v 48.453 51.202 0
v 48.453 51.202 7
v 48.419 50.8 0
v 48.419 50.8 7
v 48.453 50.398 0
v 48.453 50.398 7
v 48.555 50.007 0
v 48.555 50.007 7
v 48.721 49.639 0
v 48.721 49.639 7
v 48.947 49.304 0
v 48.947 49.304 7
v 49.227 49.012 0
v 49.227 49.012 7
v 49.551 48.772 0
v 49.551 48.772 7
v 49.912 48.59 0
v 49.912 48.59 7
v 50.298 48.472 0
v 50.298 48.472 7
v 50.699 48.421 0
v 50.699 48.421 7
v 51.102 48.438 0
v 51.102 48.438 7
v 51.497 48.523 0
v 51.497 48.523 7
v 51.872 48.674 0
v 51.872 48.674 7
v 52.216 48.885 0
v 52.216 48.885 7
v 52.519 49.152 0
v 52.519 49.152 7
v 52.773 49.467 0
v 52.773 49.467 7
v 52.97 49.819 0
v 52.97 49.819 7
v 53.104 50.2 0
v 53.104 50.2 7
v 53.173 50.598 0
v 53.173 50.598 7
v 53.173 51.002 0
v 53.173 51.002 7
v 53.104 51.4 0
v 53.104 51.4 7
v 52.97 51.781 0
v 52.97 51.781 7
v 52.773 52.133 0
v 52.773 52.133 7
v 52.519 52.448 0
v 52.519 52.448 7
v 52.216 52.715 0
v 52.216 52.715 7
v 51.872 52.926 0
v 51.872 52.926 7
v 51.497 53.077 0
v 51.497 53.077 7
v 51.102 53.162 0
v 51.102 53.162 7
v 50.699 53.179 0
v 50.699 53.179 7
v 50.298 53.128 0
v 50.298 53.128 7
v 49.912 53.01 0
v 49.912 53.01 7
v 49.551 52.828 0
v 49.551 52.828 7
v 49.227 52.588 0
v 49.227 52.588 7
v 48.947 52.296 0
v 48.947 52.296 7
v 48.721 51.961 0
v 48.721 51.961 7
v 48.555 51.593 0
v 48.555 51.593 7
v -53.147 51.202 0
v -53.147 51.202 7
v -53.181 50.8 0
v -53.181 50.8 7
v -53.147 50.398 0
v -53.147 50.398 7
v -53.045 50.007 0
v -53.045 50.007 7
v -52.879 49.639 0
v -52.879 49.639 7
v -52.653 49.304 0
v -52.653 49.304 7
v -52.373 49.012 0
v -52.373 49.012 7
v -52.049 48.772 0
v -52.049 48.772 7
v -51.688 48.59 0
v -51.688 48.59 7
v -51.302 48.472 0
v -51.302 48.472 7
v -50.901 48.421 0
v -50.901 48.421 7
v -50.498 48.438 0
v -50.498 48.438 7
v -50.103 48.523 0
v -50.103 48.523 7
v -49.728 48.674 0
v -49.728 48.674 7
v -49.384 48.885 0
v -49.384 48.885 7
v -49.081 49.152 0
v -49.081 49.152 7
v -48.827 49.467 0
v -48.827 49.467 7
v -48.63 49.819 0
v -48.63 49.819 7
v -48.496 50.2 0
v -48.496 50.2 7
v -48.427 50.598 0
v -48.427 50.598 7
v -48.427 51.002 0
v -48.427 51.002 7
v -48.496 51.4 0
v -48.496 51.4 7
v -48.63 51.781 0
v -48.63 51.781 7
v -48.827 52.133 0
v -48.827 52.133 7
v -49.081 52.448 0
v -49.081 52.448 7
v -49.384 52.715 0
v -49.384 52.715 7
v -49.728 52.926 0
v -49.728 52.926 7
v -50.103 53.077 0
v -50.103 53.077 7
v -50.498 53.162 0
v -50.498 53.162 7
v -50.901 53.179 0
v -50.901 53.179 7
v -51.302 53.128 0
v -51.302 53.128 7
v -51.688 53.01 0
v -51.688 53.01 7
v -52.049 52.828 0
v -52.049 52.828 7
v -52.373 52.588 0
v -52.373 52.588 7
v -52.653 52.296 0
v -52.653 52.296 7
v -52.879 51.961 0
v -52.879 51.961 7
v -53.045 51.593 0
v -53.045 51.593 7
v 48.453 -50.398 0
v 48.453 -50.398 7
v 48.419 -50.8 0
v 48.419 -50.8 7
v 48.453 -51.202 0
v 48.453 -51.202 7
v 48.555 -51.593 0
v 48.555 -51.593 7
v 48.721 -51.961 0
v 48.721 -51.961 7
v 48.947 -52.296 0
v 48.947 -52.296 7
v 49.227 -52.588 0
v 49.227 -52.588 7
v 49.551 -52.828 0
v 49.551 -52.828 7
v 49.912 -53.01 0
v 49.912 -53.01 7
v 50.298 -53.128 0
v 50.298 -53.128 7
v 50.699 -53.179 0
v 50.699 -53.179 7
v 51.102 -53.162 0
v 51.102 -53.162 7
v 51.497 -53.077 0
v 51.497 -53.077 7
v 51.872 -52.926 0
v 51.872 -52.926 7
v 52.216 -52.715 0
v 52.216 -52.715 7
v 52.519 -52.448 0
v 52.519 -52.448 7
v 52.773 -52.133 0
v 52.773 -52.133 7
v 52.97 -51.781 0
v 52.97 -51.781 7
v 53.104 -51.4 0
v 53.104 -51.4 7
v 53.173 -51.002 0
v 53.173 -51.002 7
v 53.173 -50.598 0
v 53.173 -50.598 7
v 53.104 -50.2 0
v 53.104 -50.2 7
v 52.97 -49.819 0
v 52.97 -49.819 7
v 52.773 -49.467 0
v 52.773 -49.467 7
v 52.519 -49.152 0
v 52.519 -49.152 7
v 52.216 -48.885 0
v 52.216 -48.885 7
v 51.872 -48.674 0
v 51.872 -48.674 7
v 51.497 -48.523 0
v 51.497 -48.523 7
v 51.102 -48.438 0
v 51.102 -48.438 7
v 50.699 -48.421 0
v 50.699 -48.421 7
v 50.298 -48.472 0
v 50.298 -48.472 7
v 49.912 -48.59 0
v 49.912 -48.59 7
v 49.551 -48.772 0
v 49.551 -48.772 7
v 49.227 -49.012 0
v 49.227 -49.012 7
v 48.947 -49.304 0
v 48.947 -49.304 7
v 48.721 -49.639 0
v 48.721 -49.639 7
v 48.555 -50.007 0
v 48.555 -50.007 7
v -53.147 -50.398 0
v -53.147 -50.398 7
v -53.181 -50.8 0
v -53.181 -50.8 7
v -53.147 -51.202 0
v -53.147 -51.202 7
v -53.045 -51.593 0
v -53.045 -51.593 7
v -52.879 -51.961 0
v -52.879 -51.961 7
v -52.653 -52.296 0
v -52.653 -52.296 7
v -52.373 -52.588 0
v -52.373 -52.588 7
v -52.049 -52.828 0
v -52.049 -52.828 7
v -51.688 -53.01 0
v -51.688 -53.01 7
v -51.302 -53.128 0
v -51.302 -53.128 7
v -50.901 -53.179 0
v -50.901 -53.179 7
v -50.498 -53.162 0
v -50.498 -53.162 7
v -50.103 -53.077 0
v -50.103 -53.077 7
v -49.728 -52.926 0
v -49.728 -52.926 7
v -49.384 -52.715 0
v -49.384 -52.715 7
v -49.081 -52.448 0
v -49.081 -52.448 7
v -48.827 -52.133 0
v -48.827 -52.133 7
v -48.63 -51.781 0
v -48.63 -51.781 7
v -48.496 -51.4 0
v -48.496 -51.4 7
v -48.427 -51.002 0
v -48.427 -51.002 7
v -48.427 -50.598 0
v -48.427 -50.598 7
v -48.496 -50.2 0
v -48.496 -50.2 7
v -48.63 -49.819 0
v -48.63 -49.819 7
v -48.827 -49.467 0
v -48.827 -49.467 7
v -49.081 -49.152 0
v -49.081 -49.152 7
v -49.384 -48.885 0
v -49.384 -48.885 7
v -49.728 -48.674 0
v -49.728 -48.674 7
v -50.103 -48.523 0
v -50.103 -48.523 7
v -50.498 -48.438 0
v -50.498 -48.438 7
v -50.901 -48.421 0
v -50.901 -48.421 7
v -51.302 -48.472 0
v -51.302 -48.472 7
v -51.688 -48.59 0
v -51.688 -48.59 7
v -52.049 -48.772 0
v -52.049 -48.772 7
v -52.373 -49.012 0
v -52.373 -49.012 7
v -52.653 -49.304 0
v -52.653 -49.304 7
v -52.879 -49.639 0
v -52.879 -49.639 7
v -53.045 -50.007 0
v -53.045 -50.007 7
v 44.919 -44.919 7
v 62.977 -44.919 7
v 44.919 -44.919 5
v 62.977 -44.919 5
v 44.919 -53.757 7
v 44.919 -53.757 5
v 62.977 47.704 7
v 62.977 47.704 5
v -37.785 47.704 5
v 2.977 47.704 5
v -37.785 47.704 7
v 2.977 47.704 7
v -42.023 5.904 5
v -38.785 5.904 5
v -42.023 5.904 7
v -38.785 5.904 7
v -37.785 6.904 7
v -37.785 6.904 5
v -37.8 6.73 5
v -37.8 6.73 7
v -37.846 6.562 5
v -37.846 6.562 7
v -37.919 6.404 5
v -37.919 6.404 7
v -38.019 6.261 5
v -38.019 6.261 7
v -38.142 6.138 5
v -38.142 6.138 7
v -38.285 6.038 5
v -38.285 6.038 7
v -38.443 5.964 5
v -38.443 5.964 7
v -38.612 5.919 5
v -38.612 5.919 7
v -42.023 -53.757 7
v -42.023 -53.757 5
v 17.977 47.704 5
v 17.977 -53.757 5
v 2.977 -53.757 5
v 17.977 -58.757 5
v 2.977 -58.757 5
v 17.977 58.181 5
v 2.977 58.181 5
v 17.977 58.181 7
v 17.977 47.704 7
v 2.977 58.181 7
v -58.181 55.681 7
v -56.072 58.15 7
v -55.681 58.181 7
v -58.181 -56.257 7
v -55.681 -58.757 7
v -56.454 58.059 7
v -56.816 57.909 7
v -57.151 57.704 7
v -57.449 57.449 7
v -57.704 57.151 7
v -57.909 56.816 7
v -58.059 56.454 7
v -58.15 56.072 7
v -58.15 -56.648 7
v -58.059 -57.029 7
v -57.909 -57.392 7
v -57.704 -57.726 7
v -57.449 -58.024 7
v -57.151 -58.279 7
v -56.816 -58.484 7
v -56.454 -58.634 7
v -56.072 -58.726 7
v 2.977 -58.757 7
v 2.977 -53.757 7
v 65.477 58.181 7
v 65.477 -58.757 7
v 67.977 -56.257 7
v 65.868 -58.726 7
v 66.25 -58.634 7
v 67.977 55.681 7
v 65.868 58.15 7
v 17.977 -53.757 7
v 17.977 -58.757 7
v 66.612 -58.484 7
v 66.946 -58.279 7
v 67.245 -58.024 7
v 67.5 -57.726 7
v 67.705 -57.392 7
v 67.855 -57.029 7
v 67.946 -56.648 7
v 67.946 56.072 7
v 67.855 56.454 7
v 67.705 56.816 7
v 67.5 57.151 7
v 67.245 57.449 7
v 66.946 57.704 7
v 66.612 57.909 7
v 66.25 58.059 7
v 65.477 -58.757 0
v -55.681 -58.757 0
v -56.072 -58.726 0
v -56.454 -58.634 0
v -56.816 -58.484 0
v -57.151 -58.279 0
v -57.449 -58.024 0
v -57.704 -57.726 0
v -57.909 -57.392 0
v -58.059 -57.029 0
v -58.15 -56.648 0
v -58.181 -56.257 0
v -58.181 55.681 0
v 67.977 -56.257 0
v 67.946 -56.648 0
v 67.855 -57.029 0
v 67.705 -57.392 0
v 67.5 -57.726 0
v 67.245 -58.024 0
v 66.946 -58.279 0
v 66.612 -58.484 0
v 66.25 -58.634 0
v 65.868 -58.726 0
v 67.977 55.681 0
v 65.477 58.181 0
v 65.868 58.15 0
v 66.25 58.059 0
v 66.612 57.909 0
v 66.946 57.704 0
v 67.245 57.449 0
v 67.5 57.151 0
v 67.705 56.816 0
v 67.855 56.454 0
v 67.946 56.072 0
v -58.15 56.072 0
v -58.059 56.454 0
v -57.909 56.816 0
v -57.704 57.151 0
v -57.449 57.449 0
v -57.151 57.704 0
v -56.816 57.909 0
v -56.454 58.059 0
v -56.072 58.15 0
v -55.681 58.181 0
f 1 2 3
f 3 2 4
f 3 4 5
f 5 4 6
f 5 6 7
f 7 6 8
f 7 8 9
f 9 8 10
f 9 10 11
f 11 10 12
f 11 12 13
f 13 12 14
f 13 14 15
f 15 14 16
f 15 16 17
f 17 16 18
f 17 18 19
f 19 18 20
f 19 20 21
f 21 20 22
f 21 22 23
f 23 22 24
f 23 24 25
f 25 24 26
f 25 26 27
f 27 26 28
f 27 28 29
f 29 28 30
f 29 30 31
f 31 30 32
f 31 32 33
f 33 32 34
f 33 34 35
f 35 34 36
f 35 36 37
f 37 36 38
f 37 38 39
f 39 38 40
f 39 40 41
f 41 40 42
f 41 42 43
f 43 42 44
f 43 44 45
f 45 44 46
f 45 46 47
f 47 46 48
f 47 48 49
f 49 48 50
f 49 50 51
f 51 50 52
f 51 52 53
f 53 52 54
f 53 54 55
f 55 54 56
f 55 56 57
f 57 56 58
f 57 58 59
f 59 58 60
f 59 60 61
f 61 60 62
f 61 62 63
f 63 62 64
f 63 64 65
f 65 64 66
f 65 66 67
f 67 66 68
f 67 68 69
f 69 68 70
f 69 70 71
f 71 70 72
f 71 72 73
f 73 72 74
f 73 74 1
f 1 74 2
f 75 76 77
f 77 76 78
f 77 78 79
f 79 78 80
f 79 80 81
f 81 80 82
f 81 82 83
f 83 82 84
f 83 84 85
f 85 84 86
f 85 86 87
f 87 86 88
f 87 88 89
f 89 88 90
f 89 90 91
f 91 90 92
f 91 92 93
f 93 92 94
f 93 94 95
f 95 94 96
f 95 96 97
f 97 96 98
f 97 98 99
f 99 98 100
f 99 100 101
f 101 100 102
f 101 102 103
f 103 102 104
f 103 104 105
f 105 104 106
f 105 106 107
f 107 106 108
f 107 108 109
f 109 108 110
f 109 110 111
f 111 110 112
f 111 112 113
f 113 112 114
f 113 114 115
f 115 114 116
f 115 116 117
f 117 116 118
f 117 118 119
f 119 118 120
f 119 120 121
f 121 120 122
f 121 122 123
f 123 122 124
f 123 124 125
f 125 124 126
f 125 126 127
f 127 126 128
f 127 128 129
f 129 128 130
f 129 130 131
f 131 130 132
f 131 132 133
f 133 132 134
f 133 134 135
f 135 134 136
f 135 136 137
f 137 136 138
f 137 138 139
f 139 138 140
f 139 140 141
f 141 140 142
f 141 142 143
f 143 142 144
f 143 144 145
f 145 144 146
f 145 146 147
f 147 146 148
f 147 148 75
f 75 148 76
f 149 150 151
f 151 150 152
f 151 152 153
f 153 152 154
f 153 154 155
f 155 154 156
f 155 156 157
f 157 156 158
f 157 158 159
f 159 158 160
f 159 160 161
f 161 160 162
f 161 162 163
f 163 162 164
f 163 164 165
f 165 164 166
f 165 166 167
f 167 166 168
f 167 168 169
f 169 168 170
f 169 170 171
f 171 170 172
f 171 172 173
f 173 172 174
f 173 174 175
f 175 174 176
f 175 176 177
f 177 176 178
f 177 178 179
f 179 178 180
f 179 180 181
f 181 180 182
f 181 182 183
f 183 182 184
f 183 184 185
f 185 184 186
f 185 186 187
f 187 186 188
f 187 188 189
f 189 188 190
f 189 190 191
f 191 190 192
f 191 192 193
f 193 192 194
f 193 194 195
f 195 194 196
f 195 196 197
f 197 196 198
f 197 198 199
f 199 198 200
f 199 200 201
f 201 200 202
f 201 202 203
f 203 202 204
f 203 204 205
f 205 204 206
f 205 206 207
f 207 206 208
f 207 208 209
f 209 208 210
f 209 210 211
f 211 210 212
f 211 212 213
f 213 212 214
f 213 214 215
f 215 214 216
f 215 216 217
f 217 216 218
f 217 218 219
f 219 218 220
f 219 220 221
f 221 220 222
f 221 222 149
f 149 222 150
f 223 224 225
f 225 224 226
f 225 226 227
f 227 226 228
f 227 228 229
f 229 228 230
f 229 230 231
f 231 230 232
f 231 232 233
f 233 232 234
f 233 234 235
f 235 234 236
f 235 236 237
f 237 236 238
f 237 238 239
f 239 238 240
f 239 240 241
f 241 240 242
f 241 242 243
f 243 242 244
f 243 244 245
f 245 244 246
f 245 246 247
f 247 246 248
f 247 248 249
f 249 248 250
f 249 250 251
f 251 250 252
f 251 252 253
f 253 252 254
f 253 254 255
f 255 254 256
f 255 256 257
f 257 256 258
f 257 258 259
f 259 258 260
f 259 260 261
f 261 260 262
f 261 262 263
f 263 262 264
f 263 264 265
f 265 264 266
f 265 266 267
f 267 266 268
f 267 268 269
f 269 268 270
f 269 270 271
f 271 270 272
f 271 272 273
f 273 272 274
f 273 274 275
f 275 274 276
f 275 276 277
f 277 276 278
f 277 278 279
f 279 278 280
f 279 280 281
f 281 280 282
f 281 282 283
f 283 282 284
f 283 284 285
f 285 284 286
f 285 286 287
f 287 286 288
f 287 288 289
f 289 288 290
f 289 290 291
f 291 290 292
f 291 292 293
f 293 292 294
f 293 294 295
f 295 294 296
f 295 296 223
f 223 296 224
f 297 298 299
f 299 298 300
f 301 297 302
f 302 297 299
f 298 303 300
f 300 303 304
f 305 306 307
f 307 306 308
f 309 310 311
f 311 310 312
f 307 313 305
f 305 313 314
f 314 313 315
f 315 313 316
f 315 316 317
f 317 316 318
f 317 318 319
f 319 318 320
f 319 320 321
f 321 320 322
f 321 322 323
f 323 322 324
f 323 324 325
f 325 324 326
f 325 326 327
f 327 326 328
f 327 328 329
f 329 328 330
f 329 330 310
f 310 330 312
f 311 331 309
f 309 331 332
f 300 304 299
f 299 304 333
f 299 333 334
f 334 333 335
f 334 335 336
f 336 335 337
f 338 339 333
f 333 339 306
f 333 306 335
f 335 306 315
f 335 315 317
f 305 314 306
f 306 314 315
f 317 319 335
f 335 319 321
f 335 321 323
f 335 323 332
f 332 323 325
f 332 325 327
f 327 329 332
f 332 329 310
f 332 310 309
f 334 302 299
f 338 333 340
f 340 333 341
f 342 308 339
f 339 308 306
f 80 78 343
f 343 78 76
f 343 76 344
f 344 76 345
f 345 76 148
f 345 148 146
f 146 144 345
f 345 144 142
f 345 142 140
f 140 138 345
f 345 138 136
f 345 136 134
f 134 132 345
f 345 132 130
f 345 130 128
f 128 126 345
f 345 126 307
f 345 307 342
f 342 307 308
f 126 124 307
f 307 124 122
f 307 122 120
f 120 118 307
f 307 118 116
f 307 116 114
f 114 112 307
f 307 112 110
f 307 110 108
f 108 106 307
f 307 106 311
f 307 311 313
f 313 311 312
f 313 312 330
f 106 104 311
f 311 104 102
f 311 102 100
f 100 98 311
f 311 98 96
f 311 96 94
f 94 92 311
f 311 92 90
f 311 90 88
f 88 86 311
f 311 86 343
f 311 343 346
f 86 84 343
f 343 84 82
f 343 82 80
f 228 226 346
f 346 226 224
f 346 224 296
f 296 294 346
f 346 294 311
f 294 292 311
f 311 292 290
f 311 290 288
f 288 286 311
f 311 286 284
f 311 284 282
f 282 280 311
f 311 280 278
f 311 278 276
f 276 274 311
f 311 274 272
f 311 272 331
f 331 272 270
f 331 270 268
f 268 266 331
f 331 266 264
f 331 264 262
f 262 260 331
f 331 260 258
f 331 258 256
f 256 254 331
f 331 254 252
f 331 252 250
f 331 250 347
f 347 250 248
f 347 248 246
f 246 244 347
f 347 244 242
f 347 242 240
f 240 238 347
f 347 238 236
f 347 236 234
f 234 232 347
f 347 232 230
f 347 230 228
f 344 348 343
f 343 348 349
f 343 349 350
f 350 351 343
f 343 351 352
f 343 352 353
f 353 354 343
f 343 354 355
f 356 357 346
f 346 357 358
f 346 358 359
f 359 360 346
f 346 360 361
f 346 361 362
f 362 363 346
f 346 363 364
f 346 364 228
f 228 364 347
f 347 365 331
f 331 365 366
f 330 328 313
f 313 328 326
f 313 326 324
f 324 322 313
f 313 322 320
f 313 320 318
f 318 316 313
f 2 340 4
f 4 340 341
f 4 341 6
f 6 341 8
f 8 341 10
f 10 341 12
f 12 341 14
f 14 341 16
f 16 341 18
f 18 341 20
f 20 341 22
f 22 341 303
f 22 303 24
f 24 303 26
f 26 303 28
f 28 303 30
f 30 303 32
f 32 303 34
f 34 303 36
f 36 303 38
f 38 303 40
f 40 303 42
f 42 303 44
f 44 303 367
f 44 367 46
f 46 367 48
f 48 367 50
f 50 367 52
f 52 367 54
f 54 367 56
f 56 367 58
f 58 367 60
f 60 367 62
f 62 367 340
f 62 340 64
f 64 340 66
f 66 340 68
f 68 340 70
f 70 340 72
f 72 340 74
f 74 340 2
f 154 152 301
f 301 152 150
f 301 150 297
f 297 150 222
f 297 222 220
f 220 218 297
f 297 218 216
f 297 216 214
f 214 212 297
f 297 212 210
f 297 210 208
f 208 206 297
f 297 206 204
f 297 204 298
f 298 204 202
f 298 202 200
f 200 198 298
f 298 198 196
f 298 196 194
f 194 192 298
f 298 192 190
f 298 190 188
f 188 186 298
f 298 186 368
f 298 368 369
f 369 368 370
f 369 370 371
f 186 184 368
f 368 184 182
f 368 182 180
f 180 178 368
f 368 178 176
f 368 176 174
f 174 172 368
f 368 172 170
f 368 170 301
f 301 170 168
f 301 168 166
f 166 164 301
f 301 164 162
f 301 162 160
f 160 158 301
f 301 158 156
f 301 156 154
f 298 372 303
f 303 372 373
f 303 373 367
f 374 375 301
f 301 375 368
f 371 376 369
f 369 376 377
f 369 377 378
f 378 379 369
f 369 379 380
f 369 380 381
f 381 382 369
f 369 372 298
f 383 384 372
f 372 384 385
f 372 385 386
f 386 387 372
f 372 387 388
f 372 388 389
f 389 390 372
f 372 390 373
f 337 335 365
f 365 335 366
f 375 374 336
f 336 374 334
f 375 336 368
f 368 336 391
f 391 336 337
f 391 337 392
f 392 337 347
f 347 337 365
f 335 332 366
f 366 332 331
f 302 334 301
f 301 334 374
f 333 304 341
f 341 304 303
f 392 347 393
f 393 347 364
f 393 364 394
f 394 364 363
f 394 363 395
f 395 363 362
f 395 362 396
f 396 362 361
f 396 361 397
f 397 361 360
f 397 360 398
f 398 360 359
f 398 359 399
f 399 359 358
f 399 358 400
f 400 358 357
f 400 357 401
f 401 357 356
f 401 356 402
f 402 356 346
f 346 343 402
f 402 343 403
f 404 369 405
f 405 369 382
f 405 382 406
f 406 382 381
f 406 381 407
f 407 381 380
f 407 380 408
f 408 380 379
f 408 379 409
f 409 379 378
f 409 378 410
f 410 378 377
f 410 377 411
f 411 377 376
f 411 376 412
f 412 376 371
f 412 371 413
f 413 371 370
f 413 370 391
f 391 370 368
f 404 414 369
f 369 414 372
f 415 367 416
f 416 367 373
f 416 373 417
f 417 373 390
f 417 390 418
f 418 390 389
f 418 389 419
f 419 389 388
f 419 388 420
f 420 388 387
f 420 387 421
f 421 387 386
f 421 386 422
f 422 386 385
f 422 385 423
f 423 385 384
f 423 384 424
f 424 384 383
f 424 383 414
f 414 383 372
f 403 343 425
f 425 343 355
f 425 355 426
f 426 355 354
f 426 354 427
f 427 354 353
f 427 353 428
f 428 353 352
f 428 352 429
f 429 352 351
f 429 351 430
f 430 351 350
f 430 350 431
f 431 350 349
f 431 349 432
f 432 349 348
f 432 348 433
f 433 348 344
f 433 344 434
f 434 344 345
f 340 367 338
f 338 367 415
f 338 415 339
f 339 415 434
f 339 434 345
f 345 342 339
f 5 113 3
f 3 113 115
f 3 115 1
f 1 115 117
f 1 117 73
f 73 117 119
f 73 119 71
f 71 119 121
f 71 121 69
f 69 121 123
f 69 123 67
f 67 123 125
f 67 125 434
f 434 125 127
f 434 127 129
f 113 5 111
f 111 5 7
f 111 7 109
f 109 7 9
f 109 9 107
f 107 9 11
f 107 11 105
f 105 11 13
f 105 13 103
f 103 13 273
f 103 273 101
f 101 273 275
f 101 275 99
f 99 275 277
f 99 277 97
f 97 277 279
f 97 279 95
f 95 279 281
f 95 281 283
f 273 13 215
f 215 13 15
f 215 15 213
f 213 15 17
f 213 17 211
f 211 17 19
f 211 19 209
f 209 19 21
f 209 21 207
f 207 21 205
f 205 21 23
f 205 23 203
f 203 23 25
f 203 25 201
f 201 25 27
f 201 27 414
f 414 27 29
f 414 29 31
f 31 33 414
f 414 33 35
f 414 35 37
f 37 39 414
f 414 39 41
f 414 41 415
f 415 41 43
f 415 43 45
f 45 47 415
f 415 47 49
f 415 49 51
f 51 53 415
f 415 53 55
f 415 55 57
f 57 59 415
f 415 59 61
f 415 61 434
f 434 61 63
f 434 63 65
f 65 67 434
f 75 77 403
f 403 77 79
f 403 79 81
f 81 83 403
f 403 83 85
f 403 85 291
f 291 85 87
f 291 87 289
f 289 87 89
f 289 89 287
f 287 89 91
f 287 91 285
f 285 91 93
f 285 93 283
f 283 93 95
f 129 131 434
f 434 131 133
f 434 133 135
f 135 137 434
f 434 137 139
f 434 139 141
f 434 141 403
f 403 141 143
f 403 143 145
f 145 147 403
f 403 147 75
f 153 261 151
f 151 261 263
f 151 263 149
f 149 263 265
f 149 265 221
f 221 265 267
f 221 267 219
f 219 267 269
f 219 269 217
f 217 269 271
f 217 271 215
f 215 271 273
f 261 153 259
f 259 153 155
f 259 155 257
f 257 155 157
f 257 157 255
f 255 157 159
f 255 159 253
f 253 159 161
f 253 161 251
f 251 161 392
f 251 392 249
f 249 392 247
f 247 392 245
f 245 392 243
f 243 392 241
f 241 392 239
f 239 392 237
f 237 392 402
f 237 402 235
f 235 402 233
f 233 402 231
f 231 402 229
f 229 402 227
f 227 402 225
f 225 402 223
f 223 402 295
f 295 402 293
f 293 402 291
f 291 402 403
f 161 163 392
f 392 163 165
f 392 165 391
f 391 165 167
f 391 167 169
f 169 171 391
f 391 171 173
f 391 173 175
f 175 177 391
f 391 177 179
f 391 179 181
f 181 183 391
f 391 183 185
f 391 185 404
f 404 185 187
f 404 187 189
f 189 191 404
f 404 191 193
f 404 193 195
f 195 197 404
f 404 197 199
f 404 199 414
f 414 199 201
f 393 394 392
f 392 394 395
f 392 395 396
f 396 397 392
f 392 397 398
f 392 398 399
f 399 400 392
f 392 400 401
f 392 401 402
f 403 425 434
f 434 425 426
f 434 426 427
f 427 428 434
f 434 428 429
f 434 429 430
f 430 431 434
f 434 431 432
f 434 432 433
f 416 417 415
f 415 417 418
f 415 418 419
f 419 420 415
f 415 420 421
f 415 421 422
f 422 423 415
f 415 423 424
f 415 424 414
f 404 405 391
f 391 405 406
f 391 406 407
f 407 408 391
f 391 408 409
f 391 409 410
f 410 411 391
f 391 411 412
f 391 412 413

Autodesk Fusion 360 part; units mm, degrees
ref_plane "WorkPlane1" through (0, 0, 7) normal (0, 0, 1) x (1, 0, 0)
sketch "Base Plate Sketch" plane through (0, 0, 0) normal (0, 0, 1) x (1, 0, 0)
  line L0 (-58.1813, -58.7567) -> (67.977, -58.7567)
  line L1 (67.977, -58.7567) -> (67.977, 58.1813)
  line L2 (67.977, 58.1813) -> (-58.1813, 58.1813)
  line L3 (-58.1813, 58.1813) -> (-58.1813, -58.7567)
extrude "Base Plate" add sketch "Base Plate Sketch" along normal blind 7
fillet "Fillet1" radius 2.5 4 edges at (-58.1813, 58.1813, 3.5) (67.977, 58.1813, 3.5) (67.977, -58.7567, 3.5) (-58.1813, -58.7567, 3.5)
sketch "Wafer Nest Pocket Sketch" plane through (0, 0, 7) normal (0, 0, 1) x (1, 0, 0)
  line L0 (-42.023, -53.7567) -> (62.977, -53.7567)
  line L1 (62.977, -53.7567) -> (62.977, 47.704)
  line L2 (62.977, 47.704) -> (-42.023, 47.704)
  line L3 (-42.023, 47.704) -> (-42.023, -53.7567)
extrude "Wafer Nest Pocket" cut sketch "Wafer Nest Pocket Sketch" against normal blind 2
sketch "Front-Center Access Relief Sketch" plane through (0, 0, 7) normal (0, 0, 1) x (1, 0, 0)
  line L0 (2.977, -59.7567) -> (17.977, -59.7567)
  line L1 (17.977, -59.7567) -> (17.977, -50.7567)
  line L2 (17.977, -50.7567) -> (2.977, -50.7567)
  line L3 (2.977, -50.7567) -> (2.977, -59.7567)
extrude "Front-Center Access Relief" cut sketch "Front-Center Access Relief Sketch" against normal blind 2
sketch "Rear-Center Access Relief Sketch" plane through (0, 0, 7) normal (0, 0, 1) x (1, 0, 0)
  line L0 (2.977, 44.704) -> (17.977, 44.704)
  line L1 (17.977, 44.704) -> (17.977, 59.1812)
  line L2 (17.977, 59.1812) -> (2.977, 59.1812)
  line L3 (2.977, 59.1812) -> (2.977, 44.704)
extrude "Rear-Center Access Relief" cut sketch "Rear-Center Access Relief Sketch" against normal blind 2
sketch "X Datum Square Sketch (165 deg / 9:30)" plane through (0, 0, 7) normal (0, 0, 1) x (1, 0, 0)
  line L0 (-45.7852, 13.9038) -> (-37.7852, 13.9038)
  line L1 (-37.7852, 13.9038) -> (-37.7852, 6.9038)
  arc A0 (-38.7852, 5.9038) -> (-37.7852, 6.9038) centre (-38.7852, 6.9038) ccw
  line L2 (-38.7852, 5.9038) -> (-45.7852, 5.9038)
  line L3 (-45.7852, 5.9038) -> (-45.7852, 13.9038)
extrude "X Datum Square (165 deg / 9:30, rounded corner)" add sketch "X Datum Square Sketch (165 deg / 9:30)" against normal blind 2
sketch "Left Wall Flush Above X-Datum Sketch" plane through (0, 0, 7) normal (0, 0, 1) x (1, 0, 0)
  line L0 (-42.023, 13.9038) -> (-37.7852, 13.9038)
  line L1 (-37.7852, 13.9038) -> (-37.7852, 47.704)
  line L2 (-37.7852, 47.704) -> (-42.023, 47.704)
  line L3 (-42.023, 47.704) -> (-42.023, 13.9038)
extrude "Left Wall Flush Above X-Datum" add sketch "Left Wall Flush Above X-Datum Sketch" against normal blind 2
sketch "Front-Right Corner Clip (dowel) Sketch" plane through (0, 0, 7) normal (0, 0, 1) x (1, 0, 0)
  line L0 (44.9187, -53.7567) -> (62.977, -53.7567)
  line L1 (62.977, -53.7567) -> (62.977, -44.9187)
  line L2 (62.977, -44.9187) -> (44.9187, -44.9187)
  line L3 (44.9187, -44.9187) -> (44.9187, -53.7567)
extrude "Front-Right Corner Clip (dowel)" add sketch "Front-Right Corner Clip (dowel) Sketch" against normal blind 2
sketch "Outer Front Left Dowel Bore Sketch" plane through (0, 0, 7) normal (0, 0, 1) x (1, 0, 0)
  circle A0 centre (-50.8, -50.8) radius 2.3813
extrude "Outer Front Left Dowel Bore" cut sketch "Outer Front Left Dowel Bore Sketch" against normal blind 7
sketch "Outer Front Right Dowel Bore Sketch" plane through (0, 0, 7) normal (0, 0, 1) x (1, 0, 0)
  circle A0 centre (50.8, -50.8) radius 2.3813
extrude "Outer Front Right Dowel Bore" cut sketch "Outer Front Right Dowel Bore Sketch" against normal blind 7
sketch "Outer Rear Left Dowel Bore Sketch" plane through (0, 0, 7) normal (0, 0, 1) x (1, 0, 0)
  circle A0 centre (-50.8, 50.8) radius 2.3813
extrude "Outer Rear Left Dowel Bore" cut sketch "Outer Rear Left Dowel Bore Sketch" against normal blind 7
sketch "Outer Rear Right Dowel Bore Sketch" plane through (0, 0, 7) normal (0, 0, 1) x (1, 0, 0)
  circle A0 centre (50.8, 50.8) radius 2.3813
extrude "Outer Rear Right Dowel Bore" cut sketch "Outer Rear Right Dowel Bore Sketch" against normal blind 7
equation "gridPitch = 25.4 mm" comment "Table hole-grid pitch"
equation "indexMove = 50.8 mm" comment "Two-grid-space indexing move"
equation "outerPinPatternSpan = 101.6 mm" comment "Four-space outer pin span"
equation "dowelDiameter = 4.7625 mm" comment "3/16 in steel locating dowel diameter"
equation "dowelHoleDiameter = 4.7625 mm" comment "3/16 in reamed dowel bore"
equation "plateEdgeMargin = 5.0 mm" comment "Solid margin, plate edge to nearest feature"
equation "plateWidth = 126.15825000000001 mm" comment "Computed plate width (X)"
equation "plateHeight = 116.93795079844435 mm" comment "Computed plate height (Y)"
equation "baseThickness = 7.0 mm" comment "Base plate thickness"
equation "pocketDepth = 2.0 mm" comment "Wafer-nest pocket depth"
equation "nestClearanceSide = 2.5 mm" comment "Left/right pocket-wall clearance"
equation "nestClearanceRear = 4.0 mm" comment "Rear pocket-wall clearance"
equation "filletRadius = 2.5 mm" comment "Base-plate corner fillet radius"
equation "primaryFlatClearance = 0.175 mm" comment "Front wall forward of nominal flat"
equation "xDatumSize = 8.0 mm" comment "Square X-datum block side"
equation "nestReliefWidth = 15.0 mm" comment "Front/rear access relief width"
equation "nestOffsetX = 7.29 mm" comment "Nest X from pin-square center"
equation "nestOffsetY = -4.95 mm" comment "Nest Y from pin-square center"
